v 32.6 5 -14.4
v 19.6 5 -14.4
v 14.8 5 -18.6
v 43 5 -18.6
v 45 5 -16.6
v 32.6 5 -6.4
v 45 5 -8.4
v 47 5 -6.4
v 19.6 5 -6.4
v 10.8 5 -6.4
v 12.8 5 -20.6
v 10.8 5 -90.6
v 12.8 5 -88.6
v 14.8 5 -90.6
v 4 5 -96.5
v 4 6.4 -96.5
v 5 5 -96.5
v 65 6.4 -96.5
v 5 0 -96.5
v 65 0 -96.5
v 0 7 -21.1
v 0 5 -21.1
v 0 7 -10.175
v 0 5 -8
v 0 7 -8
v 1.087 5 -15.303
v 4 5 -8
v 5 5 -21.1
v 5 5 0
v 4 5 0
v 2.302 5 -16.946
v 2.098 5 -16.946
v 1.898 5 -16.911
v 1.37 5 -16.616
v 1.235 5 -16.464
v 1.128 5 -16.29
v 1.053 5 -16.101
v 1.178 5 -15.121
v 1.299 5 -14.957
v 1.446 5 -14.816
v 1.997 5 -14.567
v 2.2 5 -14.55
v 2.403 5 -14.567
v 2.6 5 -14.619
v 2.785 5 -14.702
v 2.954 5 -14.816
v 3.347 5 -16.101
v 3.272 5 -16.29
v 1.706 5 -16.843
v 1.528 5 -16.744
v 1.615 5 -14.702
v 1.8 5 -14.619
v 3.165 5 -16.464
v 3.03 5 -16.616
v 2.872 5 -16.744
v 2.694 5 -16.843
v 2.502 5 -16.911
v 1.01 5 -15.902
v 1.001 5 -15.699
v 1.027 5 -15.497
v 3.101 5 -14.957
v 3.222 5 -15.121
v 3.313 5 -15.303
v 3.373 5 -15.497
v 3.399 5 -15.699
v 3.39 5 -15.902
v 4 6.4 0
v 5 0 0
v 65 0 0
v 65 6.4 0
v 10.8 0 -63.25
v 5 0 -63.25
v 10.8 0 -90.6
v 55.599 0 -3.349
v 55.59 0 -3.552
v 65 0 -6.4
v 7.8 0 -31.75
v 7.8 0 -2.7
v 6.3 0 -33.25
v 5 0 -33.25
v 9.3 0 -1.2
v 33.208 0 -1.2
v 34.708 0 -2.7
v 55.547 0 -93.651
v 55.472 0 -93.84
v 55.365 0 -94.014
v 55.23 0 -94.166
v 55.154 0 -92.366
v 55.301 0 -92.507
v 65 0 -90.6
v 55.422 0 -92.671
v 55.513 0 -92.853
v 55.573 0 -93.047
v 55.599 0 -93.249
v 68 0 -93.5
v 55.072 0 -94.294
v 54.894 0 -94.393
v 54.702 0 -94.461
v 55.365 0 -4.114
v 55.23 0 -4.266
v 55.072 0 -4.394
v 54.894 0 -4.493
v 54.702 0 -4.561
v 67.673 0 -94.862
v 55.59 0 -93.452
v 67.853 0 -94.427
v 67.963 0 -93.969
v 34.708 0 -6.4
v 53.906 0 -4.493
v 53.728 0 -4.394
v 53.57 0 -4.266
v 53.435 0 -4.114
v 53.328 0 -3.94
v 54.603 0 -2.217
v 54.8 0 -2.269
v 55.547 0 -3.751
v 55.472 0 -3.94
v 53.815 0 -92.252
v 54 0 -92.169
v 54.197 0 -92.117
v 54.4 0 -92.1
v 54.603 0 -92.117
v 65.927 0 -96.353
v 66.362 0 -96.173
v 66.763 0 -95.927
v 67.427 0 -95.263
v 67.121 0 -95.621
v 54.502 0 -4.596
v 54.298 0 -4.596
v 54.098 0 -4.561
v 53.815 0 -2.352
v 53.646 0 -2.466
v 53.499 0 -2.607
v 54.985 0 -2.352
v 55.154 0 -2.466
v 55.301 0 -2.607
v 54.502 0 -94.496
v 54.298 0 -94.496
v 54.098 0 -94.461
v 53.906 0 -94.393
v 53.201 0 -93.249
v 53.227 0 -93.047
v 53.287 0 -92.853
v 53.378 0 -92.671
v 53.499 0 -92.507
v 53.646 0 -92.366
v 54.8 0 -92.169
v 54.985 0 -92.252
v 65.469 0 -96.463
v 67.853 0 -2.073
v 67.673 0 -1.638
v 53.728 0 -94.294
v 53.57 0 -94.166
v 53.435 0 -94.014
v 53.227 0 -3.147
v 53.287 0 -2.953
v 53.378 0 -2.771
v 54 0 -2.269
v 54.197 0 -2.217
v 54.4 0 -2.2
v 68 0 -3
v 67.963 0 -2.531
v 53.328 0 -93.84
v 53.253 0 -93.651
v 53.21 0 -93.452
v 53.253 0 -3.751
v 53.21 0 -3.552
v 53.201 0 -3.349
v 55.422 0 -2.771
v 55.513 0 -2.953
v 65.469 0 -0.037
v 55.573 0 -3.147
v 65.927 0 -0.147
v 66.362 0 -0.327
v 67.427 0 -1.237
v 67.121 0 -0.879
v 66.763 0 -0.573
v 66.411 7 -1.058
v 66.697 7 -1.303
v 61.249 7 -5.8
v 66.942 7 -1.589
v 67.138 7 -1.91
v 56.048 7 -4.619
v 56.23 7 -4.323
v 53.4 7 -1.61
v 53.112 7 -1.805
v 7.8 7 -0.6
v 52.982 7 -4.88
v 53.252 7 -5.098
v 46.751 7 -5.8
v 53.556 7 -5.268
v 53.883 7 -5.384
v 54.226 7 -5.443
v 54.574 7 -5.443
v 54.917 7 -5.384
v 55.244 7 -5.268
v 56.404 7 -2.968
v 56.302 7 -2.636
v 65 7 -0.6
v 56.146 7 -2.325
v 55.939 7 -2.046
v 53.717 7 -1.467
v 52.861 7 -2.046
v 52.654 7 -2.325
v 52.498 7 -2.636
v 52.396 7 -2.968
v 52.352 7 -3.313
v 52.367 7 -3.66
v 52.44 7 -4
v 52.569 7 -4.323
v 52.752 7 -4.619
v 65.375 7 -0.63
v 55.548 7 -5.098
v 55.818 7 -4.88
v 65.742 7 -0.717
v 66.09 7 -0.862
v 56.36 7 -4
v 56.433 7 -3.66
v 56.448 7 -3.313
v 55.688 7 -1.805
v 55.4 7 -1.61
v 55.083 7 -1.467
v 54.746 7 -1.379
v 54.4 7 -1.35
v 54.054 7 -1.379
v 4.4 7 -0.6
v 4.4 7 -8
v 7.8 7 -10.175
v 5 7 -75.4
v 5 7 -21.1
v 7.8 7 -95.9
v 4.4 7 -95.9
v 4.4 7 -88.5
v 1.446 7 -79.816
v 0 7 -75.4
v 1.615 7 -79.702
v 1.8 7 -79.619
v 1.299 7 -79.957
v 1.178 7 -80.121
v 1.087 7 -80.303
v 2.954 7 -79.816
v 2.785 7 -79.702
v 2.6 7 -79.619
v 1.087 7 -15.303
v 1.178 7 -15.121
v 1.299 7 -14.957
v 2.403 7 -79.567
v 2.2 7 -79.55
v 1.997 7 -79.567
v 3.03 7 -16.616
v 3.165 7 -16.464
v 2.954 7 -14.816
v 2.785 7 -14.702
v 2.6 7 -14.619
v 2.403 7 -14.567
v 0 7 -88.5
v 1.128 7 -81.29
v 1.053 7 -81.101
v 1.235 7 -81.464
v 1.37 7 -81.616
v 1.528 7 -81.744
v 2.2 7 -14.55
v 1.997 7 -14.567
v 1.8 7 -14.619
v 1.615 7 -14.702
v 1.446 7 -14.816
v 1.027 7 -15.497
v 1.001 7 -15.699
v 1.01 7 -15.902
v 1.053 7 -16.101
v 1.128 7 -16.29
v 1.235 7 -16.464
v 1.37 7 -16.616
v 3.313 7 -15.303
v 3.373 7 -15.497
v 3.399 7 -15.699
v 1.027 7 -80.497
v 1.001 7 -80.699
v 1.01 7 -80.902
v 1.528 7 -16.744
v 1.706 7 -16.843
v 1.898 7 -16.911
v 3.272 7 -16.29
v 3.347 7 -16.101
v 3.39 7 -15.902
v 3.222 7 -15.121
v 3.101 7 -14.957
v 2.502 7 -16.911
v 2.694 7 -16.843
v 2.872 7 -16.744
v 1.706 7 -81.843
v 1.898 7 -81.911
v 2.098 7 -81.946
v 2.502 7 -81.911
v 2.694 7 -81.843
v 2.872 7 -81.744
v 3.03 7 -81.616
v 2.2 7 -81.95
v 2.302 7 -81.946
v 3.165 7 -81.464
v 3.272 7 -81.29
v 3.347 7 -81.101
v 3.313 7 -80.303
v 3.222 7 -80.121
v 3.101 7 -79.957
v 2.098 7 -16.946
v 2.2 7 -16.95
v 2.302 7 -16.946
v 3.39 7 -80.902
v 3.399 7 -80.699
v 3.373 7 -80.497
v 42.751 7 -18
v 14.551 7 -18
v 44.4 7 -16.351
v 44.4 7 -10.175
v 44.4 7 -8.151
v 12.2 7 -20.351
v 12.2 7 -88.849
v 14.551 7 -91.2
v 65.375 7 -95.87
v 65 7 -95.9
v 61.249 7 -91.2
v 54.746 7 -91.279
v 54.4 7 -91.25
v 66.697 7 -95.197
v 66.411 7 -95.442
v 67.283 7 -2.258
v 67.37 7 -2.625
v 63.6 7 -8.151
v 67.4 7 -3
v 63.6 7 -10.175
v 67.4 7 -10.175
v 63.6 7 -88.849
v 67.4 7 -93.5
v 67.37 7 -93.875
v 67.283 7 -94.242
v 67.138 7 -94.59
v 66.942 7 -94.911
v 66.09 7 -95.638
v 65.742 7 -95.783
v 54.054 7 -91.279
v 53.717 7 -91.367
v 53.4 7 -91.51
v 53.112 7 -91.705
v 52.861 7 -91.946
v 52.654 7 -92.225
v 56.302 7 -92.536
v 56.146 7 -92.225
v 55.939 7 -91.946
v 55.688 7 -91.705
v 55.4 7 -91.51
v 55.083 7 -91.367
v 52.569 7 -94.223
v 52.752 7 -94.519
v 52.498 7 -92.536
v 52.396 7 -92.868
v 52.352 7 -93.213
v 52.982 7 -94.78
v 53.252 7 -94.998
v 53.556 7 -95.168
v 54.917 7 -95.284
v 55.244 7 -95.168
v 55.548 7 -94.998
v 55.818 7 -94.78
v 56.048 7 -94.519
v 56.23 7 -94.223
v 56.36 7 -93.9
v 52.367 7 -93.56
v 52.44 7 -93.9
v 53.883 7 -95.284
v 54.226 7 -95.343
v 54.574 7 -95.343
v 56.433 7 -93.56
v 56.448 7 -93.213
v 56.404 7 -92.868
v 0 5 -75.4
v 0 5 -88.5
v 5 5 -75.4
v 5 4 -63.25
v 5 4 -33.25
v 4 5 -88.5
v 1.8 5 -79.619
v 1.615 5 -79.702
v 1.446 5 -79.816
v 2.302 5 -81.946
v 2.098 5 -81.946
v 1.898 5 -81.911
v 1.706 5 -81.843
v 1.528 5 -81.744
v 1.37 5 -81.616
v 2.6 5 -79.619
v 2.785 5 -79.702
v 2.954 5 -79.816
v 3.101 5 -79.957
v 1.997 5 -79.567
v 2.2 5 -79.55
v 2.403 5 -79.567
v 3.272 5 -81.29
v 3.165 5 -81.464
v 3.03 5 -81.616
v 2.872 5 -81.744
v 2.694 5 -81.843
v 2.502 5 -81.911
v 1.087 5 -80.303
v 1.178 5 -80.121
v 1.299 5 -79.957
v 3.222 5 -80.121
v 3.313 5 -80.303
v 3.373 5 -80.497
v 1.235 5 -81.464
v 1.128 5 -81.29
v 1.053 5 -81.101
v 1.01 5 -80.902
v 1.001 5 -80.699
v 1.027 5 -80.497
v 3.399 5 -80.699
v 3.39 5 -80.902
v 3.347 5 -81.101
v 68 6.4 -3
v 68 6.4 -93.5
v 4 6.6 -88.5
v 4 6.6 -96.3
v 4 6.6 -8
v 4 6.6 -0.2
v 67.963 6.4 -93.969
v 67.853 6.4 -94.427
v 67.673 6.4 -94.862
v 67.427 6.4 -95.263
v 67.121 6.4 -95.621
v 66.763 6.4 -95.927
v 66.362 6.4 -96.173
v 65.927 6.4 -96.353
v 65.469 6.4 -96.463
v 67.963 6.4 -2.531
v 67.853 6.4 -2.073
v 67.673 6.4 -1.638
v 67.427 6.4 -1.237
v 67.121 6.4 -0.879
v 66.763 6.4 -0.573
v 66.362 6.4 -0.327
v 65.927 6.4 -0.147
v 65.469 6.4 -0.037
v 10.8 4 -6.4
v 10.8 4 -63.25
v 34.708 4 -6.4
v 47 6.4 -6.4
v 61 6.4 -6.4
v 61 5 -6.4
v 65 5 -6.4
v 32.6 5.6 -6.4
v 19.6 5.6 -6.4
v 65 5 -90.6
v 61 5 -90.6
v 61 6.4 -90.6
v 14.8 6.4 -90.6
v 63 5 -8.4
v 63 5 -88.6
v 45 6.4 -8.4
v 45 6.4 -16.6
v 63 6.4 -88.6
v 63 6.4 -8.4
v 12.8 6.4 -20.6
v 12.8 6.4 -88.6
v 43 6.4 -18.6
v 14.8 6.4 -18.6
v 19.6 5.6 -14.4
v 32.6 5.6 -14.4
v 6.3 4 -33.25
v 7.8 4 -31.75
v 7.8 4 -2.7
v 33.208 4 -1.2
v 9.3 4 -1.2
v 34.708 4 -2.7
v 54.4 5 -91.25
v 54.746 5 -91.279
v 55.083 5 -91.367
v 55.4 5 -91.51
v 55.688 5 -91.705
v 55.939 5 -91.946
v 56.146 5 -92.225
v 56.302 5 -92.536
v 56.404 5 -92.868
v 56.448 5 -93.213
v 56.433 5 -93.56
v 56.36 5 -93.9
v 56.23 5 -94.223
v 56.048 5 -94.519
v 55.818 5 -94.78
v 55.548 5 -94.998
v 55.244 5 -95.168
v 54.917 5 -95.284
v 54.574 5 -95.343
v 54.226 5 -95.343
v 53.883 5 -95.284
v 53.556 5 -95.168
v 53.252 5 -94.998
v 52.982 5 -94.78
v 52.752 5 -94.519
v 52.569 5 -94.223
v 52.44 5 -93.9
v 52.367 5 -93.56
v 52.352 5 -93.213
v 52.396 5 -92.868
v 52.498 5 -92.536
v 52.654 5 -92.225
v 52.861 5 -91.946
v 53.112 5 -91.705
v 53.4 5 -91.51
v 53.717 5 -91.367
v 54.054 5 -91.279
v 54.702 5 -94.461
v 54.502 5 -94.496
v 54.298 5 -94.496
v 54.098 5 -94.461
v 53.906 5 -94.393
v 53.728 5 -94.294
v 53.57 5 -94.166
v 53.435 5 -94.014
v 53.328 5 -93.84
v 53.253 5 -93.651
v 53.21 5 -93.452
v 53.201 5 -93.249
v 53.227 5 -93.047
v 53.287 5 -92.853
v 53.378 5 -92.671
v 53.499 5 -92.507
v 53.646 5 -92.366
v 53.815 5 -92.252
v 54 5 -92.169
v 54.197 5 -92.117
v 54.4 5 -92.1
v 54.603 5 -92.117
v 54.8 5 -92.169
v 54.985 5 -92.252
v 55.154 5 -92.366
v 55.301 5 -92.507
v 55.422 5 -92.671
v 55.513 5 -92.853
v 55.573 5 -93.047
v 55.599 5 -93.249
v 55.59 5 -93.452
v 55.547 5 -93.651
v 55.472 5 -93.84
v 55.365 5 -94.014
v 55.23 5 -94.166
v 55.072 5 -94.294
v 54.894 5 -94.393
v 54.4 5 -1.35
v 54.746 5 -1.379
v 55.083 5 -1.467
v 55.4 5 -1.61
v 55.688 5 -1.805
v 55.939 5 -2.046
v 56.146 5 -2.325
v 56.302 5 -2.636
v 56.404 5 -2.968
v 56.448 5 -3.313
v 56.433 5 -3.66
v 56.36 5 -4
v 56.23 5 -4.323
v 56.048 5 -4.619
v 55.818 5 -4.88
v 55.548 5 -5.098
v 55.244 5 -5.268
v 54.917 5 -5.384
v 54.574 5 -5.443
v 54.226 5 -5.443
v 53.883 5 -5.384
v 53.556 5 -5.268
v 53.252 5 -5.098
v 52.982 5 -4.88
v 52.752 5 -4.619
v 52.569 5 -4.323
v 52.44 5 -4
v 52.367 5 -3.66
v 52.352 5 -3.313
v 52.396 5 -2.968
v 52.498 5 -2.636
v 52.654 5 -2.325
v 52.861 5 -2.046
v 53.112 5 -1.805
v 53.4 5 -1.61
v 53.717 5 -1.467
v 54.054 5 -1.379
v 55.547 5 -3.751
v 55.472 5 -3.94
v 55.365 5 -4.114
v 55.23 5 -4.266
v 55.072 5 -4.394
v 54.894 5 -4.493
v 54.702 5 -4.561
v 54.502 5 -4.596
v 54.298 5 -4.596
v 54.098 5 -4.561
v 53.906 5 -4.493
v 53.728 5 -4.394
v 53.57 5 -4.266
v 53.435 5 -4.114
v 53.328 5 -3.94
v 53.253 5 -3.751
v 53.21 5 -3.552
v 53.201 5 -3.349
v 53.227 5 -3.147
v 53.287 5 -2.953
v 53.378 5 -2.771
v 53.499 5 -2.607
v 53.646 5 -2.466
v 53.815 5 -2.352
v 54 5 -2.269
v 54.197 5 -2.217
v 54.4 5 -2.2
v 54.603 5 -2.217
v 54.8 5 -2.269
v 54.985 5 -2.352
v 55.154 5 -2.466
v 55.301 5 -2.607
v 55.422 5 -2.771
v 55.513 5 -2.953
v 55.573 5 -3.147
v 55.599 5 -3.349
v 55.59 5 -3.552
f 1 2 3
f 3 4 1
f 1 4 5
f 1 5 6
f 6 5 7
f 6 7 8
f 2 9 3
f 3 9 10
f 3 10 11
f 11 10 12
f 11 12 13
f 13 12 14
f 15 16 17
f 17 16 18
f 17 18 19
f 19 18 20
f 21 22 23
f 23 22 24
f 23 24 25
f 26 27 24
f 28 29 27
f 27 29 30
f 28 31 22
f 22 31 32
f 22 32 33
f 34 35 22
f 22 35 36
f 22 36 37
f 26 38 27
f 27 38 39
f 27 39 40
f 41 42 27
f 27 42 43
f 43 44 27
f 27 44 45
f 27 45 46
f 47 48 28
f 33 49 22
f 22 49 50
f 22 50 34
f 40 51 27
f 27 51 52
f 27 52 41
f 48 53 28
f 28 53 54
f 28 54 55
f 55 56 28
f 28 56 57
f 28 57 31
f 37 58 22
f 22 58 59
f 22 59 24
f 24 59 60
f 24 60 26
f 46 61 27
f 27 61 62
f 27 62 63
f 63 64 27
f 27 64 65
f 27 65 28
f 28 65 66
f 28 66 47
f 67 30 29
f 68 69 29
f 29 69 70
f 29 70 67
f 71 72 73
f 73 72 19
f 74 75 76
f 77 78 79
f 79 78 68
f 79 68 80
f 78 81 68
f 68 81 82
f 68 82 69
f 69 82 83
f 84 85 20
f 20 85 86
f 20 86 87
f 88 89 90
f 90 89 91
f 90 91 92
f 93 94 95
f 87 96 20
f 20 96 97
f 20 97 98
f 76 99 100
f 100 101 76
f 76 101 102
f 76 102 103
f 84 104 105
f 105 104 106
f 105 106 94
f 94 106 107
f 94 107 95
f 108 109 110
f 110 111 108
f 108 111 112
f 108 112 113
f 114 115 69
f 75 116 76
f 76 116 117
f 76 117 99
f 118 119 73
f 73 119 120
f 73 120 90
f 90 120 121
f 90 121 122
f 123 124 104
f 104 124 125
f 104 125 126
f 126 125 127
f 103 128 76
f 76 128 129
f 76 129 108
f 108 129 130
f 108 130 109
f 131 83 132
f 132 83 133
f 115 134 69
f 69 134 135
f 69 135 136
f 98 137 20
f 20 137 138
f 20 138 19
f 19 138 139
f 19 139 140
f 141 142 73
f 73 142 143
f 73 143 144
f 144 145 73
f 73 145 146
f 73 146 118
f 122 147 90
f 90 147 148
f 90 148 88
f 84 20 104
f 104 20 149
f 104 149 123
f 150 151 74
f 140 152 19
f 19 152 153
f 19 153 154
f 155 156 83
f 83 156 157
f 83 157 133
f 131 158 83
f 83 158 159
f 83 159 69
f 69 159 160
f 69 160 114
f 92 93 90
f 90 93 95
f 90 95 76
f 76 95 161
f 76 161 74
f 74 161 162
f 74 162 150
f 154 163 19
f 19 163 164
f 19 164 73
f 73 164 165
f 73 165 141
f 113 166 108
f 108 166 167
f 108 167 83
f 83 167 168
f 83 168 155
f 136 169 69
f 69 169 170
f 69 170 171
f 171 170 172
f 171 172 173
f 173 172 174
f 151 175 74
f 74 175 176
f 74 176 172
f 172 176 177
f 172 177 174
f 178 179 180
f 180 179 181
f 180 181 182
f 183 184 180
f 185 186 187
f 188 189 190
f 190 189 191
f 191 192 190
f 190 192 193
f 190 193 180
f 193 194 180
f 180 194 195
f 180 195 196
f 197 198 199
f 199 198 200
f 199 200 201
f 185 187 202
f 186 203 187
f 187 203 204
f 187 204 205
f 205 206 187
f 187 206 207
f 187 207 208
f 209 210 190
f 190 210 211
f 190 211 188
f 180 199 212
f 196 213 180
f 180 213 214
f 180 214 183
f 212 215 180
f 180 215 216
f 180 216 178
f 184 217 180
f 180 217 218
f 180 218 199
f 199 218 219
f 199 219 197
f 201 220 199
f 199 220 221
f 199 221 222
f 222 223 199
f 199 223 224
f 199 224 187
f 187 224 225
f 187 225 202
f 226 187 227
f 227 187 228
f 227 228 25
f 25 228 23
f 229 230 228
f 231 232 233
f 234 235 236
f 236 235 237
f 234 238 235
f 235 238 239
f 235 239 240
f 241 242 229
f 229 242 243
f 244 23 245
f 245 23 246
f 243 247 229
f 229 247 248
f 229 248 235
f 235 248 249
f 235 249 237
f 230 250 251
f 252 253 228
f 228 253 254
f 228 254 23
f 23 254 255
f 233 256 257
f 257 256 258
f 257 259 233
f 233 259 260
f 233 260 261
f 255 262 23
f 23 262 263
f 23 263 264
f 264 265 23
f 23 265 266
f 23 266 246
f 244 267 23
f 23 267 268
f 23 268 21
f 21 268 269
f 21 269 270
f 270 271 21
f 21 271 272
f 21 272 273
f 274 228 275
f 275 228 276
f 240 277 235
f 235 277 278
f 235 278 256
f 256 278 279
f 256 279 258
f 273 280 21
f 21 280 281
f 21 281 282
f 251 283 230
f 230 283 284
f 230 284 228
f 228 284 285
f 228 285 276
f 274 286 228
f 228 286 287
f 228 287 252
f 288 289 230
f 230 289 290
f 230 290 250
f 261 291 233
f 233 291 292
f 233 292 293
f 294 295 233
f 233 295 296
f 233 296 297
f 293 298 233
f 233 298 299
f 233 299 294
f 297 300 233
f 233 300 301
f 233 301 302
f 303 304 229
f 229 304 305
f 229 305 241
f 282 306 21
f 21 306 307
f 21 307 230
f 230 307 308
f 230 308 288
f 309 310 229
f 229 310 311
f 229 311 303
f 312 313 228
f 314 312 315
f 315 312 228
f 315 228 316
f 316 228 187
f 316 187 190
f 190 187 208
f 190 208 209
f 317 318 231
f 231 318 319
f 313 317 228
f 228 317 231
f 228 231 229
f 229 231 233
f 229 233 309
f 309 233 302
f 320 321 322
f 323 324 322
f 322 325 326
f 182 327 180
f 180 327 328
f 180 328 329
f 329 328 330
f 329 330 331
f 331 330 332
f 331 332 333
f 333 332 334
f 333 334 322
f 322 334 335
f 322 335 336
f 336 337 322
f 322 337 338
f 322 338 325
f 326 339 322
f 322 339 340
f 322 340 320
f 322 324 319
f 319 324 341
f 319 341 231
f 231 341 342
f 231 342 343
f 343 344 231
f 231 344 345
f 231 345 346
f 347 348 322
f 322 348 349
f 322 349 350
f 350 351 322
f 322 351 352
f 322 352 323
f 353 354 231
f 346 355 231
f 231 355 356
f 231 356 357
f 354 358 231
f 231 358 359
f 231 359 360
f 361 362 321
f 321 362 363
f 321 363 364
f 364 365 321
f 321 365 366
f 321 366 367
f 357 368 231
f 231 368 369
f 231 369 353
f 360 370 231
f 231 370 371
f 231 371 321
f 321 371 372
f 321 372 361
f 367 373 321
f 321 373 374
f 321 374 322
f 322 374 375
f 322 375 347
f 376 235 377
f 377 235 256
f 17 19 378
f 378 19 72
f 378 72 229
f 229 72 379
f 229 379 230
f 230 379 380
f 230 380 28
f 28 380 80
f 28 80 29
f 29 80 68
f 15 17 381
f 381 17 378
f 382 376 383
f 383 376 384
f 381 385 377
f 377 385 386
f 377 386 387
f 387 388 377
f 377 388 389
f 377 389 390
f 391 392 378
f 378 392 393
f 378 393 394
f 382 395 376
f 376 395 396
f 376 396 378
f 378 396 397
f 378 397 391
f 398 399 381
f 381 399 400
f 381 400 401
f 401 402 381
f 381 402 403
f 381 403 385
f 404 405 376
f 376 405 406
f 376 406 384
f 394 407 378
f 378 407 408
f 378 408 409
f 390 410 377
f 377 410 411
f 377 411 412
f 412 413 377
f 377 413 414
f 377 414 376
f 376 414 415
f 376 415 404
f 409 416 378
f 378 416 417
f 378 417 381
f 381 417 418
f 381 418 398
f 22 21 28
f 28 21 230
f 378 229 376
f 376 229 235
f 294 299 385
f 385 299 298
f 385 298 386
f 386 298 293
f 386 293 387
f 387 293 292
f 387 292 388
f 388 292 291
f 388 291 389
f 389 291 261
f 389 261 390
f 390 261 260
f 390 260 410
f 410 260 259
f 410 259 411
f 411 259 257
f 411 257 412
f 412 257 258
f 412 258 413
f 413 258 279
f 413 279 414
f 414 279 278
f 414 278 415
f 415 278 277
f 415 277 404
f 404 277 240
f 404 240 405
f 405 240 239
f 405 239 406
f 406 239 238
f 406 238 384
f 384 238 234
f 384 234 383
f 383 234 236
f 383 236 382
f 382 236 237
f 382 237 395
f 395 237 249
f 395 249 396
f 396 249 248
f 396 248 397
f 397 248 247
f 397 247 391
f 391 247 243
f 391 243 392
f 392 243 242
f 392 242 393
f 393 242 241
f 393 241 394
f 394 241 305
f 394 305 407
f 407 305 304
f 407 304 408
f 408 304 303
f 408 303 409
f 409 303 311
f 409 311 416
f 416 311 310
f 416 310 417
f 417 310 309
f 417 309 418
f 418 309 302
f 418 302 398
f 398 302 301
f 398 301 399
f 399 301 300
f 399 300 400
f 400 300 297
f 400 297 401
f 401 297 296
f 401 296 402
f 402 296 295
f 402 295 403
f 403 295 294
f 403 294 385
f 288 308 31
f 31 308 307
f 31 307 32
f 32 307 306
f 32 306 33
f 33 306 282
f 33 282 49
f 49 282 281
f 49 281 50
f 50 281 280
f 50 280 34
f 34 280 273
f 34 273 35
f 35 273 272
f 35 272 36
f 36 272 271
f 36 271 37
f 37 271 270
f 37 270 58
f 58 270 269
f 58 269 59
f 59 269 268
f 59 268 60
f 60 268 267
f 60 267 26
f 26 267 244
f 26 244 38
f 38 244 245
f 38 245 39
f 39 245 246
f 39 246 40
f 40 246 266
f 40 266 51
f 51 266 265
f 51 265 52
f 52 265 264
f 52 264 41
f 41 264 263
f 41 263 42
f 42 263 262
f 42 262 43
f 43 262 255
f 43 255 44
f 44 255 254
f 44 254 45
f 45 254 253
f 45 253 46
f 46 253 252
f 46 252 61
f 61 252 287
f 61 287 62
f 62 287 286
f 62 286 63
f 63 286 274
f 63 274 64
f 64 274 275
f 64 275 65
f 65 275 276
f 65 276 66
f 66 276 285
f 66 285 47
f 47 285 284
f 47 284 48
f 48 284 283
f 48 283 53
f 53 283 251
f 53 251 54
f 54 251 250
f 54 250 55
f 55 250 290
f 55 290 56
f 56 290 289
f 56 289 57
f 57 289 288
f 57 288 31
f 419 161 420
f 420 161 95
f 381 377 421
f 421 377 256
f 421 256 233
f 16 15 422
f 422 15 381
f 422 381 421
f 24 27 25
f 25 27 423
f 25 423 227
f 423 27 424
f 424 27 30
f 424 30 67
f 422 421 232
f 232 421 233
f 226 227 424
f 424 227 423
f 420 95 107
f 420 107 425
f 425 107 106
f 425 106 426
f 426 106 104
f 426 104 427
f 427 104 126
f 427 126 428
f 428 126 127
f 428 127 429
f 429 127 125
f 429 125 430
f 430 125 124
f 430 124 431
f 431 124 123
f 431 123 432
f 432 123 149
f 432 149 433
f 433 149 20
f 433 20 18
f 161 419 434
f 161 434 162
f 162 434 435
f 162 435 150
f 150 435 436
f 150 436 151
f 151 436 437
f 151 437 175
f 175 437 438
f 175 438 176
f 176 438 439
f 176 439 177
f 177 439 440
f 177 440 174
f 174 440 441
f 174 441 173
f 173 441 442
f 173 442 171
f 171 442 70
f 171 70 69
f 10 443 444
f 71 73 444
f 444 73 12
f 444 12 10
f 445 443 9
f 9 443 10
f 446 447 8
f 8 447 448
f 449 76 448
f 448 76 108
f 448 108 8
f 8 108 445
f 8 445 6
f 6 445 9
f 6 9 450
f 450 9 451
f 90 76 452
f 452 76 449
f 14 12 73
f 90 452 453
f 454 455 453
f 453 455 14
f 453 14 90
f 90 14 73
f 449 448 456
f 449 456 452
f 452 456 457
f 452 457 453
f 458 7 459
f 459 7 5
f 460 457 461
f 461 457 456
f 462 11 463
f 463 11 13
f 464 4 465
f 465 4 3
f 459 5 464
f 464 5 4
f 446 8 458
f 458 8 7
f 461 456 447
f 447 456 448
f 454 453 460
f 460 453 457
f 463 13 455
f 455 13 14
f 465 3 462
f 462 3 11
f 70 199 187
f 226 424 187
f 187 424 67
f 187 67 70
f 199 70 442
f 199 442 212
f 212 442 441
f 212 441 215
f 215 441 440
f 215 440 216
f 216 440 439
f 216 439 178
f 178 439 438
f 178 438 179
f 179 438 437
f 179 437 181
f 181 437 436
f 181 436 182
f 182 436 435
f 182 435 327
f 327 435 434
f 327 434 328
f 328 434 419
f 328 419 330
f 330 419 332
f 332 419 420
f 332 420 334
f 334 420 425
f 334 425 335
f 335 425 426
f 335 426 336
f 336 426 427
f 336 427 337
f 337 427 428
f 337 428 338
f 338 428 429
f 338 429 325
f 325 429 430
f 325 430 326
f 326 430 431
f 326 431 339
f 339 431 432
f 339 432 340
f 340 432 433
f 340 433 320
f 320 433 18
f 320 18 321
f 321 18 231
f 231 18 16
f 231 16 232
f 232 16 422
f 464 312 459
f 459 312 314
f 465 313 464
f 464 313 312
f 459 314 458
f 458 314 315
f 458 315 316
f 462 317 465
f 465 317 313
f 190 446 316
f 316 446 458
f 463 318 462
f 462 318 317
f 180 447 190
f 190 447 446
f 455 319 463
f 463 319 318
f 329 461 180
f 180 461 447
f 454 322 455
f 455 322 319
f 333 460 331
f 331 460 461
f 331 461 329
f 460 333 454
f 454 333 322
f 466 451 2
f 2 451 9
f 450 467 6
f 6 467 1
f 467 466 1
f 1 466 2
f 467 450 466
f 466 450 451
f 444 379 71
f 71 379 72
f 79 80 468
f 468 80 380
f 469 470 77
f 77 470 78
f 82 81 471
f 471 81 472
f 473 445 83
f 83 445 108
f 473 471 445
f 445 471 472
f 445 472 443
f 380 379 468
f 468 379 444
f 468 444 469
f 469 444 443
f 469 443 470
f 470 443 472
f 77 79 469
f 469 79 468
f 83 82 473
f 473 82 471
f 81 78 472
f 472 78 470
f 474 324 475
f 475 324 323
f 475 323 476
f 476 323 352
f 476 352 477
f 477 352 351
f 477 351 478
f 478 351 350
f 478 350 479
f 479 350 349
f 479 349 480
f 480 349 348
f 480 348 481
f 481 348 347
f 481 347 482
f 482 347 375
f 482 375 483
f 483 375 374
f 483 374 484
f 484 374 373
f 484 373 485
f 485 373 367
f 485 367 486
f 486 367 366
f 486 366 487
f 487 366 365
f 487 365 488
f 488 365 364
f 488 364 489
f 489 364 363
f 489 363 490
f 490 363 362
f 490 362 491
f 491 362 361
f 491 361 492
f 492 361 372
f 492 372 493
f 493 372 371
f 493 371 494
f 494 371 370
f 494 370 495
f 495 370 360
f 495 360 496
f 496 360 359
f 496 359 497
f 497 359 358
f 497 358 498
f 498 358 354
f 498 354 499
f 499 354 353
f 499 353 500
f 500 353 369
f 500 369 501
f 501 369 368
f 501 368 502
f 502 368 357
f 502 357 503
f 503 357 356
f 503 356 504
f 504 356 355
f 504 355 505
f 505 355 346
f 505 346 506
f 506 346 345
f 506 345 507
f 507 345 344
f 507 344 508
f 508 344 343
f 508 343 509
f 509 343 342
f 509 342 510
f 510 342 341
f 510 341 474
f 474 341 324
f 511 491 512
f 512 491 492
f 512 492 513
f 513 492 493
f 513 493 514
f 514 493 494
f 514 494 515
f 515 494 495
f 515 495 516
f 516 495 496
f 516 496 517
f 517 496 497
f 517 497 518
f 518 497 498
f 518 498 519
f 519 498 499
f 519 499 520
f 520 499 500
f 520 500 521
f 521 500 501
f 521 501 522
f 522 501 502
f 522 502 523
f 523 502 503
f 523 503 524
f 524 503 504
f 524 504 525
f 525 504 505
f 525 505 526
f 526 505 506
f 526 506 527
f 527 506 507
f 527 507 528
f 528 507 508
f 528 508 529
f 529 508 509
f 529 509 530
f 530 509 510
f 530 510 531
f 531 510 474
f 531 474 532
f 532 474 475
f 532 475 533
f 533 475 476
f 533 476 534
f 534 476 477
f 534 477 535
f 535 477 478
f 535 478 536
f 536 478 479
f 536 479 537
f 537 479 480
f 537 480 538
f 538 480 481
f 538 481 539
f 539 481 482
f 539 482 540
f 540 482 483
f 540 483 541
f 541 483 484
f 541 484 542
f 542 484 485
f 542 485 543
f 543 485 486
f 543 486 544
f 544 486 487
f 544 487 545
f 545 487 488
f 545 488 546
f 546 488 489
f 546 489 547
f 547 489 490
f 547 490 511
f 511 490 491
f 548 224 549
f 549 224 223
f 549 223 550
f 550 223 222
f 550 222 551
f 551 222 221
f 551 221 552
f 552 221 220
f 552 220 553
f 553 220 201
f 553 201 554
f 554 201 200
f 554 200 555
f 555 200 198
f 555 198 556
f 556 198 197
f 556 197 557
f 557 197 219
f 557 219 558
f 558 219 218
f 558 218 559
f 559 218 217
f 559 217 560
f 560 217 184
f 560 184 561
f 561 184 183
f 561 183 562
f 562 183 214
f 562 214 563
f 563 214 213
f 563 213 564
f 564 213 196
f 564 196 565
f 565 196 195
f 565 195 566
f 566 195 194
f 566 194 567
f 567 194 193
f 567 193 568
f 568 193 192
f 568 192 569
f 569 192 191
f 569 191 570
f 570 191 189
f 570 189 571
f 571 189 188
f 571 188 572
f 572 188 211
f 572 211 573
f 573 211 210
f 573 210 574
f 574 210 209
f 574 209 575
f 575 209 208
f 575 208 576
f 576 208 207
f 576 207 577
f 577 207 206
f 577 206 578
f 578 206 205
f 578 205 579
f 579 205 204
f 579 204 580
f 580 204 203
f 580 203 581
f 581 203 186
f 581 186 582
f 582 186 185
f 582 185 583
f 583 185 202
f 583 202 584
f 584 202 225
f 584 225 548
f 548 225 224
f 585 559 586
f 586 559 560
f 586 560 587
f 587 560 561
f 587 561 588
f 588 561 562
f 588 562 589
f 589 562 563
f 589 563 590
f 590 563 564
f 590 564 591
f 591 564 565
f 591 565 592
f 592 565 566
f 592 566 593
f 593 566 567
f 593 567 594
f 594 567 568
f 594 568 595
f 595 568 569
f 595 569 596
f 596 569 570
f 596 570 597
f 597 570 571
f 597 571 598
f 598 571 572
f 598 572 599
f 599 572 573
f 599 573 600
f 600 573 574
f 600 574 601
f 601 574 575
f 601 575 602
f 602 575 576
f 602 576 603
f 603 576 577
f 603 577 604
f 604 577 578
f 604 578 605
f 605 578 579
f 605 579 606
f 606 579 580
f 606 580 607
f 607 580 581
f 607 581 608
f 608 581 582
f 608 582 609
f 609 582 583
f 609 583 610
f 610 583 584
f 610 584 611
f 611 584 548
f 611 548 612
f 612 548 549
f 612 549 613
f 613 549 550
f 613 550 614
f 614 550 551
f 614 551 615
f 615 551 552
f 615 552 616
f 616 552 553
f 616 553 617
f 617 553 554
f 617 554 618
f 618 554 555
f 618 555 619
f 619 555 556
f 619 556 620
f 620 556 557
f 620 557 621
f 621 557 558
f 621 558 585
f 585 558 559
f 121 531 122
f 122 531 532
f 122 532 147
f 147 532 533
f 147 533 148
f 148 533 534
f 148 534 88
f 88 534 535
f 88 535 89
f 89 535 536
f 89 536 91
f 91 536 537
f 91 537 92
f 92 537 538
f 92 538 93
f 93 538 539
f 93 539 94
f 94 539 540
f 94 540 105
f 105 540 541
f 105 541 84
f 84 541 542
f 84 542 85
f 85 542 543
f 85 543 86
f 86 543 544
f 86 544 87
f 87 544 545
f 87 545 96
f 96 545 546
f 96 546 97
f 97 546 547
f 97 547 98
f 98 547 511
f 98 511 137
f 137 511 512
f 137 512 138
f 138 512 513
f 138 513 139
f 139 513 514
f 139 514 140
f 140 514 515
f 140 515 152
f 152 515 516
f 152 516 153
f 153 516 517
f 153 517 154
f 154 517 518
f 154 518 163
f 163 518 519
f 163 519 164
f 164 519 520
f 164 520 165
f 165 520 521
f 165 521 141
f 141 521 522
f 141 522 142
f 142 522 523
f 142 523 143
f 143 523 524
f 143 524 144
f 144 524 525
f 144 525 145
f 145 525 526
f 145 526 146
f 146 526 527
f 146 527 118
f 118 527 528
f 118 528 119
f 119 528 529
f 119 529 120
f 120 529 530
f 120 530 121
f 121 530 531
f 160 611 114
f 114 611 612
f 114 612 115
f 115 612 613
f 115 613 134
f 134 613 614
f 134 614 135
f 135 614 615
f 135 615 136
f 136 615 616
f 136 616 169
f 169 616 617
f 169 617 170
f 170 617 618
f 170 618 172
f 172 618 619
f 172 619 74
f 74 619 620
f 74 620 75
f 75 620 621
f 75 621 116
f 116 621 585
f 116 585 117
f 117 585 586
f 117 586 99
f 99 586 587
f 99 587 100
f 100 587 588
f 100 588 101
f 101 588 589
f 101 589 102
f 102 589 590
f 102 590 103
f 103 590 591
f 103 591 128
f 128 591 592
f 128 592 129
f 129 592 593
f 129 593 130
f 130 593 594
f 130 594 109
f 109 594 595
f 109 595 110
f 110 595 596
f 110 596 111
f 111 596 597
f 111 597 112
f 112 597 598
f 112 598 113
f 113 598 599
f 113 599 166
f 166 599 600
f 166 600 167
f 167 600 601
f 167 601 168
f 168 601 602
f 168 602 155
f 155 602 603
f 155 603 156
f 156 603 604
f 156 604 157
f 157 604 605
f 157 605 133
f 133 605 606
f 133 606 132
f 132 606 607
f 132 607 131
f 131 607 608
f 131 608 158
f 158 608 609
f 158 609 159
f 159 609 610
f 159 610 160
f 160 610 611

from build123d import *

# Parameters (mm, degrees)
SKETCH_2_W           = 96.5
SKETCH_2_H           = 7
EXTRUDE_1_DEPTH      = 11
SKETCH_6_W           = 5
SKETCH_6_H           = 2.5
CUT_EXTRUDE_3_DEPTH  = 98.376845297
SKETCH_7_W           = 54.3
SKETCH_7_H           = 10
CUT_EXTRUDE_4_DEPTH  = 5
SKETCH_8_R           = 1.2
CUT_EXTRUDE_6_DEPTH  = 98.376845297
SKETCH_10_W          = 96.5
SKETCH_10_H          = 7
EXTRUDE_2_DEPTH      = 57
SKETCH_11_W          = 8
SKETCH_11_H          = 2
CUT_EXTRUDE_7_DEPTH  = 4
CHAMFER_1_SIZE       = 0.4
FILLET_1_R           = 3
SKETCH_12_W          = 54.2
SKETCH_12_H          = 84.200000954
CUT_EXTRUDE_8_DEPTH  = 5
CUT_EXTRUDE_9_DEPTH  = 119.15773356
CHAMFER_2_SIZE       = 2
CHAMFER_3_SIZE       = 0.6
SKETCH_17_W          = 13
SKETCH_17_H          = 8
CUT_EXTRUDE_10_DEPTH = 0.6
CUT_EXTRUDE_11_DEPTH = 4
CHAMFER_4_SIZE       = 1.5
SKETCH_19_R          = 2.05
CUT_EXTRUDE_12_DEPTH = 2
SKETCH_20_R          = 1.2
CUT_EXTRUDE_13_DEPTH = 119.15773356


with BuildPart() as part:
    # 草图2 → 凸台-拉伸1 (new body)
    with BuildSketch(Plane(origin=(0, 0, 0), x_dir=(0, 0, -1), z_dir=(1, 0, 0))):
        with Locations((48.25, 3.5)):
            Rectangle(SKETCH_2_W, SKETCH_2_H)
    extrude(amount=EXTRUDE_1_DEPTH)

    # 草图6 → 切除-拉伸3 (cut, through all)
    with BuildSketch(Plane(origin=(0, 0, -96.5), x_dir=(-1, 0, 0), z_dir=(0, 0, -1))):
        with Locations((-2.5, 3.75)):
            Rectangle(SKETCH_6_W, SKETCH_6_H)
        with Locations((-2.5, 1.25)):
            Rectangle(SKETCH_6_W, SKETCH_6_H)
    extrude(amount=-CUT_EXTRUDE_3_DEPTH, mode=Mode.SUBTRACT)

    # 草图7 → 切除-拉伸4 (cut)
    with BuildSketch(Plane.ZY):
        with Locations((-48.25, 9)):
            Rectangle(SKETCH_7_W, SKETCH_7_H)
    extrude(amount=-CUT_EXTRUDE_4_DEPTH, mode=Mode.SUBTRACT)

    # 草图8 → 切除-拉伸6 (cut, through all)
    with BuildSketch(Plane(origin=(0, 7, 0), x_dir=(1, 0, 0), z_dir=(0, 1, 0))):
        with Locations(Location((2.2, 15.75, 0), (0, 0, 270))):
            Circle(SKETCH_8_R)
        with Locations(Location((2.2, 80.75, 0), (0, 0, 270))):
            Circle(SKETCH_8_R)
    extrude(amount=-CUT_EXTRUDE_6_DEPTH, mode=Mode.SUBTRACT)

    # 草图10 → 凸台-拉伸2 (add)
    with BuildSketch(Plane(origin=(11, 0, 0), x_dir=(0, 0, -1), z_dir=(1, 0, 0))):
        with Locations((48.25, 3.5)):
            Rectangle(SKETCH_10_W, SKETCH_10_H)
    extrude(amount=EXTRUDE_2_DEPTH)

    # 草图11 → 切除-拉伸7 (cut)
    with BuildSketch(Plane.ZY):
        with Locations((-92.5, 6)):
            Rectangle(SKETCH_11_W, SKETCH_11_H)
        with Locations((-4, 6)):
            Rectangle(SKETCH_11_W, SKETCH_11_H)
    extrude(amount=-CUT_EXTRUDE_7_DEPTH, mode=Mode.SUBTRACT)

    # 倒角1
    chamfer_1_edges = [part.edges().sort_by_distance(p)[0] for p in [
        (4, 7, -92.5),
        (4, 7, -4),
    ]]
    chamfer(chamfer_1_edges, length=CHAMFER_1_SIZE)

    # 圆角1
    fillet_1_edges = [part.edges().sort_by_distance(p)[0] for p in [
        (68, 3.5, 0),
        (68, 3.5, -96.5),
    ]]
    fillet(fillet_1_edges, radius=FILLET_1_R)

    # 草图12 → 切除-拉伸8 (cut)
    with BuildSketch(Plane.XZ):
        with Locations((37.9, -48.499999523)):
            Rectangle(SKETCH_12_W, SKETCH_12_H)
    extrude(amount=-CUT_EXTRUDE_8_DEPTH, mode=Mode.SUBTRACT)

    # 草图16 → 切除-拉伸9 (cut, through all)
    with BuildSketch(Plane.XZ.offset(-5)):
        Polygon((45, -6.399999046), (63, -6.399999046), (63, -90.6), (12.8, -90.6), (12.8, -18.599999046), (45, -18.599999046), align=None)
    extrude(amount=-CUT_EXTRUDE_9_DEPTH, mode=Mode.SUBTRACT)

    # 倒角2
    chamfer_2_edges = [part.edges().sort_by_distance(p)[0] for p in [
        (45, 6, -18.599999046),
        (45, 6, -6.399999046),
        (63, 6, -6.399999046),
        (63, 6, -90.6),
        (12.8, 6, -90.6),
        (12.8, 6, -18.599999046),
    ]]
    chamfer(chamfer_2_edges, length=CHAMFER_2_SIZE)

    # 倒角3
    chamfer_3_edges = [part.edges().sort_by_distance(p)[0] for p in [
        (34.7, 7, -96.5),
        (67.121320344, 7, -95.621320344),
        (68, 7, -48.25),
        (67.121320344, 7, -0.878679656),
        (34.7, 7, 0),
        (62, 7, -89.6),
        (63, 7, -48.499999523),
        (62, 7, -7.399999046),
        (54, 7, -6.399999046),
        (46, 7, -7.399999046),
        (45, 7, -12.499999046),
        (44, 7, -17.599999046),
        (37.9, 7, -90.6),
        (13.8, 7, -89.6),
        (12.8, 7, -54.599999523),
        (13.8, 7, -19.599999046),
        (28.9, 7, -18.599999046),
    ]]
    chamfer(chamfer_3_edges, length=CHAMFER_3_SIZE)

    # 草图17 → 切除-拉伸10 (cut)
    with BuildSketch(Plane.XZ.offset(-5)):
        with Locations((26.1, -10.399999046)):
            Rectangle(SKETCH_17_W, SKETCH_17_H)
    extrude(amount=-CUT_EXTRUDE_10_DEPTH, mode=Mode.SUBTRACT)

    # 草图18 → 切除-拉伸11 (cut)
    with BuildSketch(Plane.XZ):
        Polygon((34.708261144, -6.399999046), (10.8, -6.399999046), (10.8, -63.25), (5, -63.25), (5, -33.25), (7.8, -33.25), (7.8, -1.2), (34.708261144, -1.2), align=None)
    extrude(amount=-CUT_EXTRUDE_11_DEPTH, mode=Mode.SUBTRACT)

    # 倒角4
    chamfer_4_edges = [part.edges().sort_by_distance(p)[0] for p in [
        (7.8, 2, -33.25),
        (7.8, 2, -1.2),
        (34.708261144, 2, -1.2),
    ]]
    chamfer(chamfer_4_edges, length=CHAMFER_4_SIZE)

    # 草图19 → 切除-拉伸12 (cut)
    with BuildSketch(Plane(origin=(0, 7, 0), x_dir=(1, 0, 0), z_dir=(0, 1, 0))):
        with Locations(Location((54.4, 3.4, 0), (0, 0, 270))):
            Circle(SKETCH_19_R)
        with Locations(Location((54.4, 93.3, 0), (0, 0, 270))):
            Circle(SKETCH_19_R)
    extrude(amount=-CUT_EXTRUDE_12_DEPTH, mode=Mode.SUBTRACT)

    # 草图20 → 切除-拉伸13 (cut, through all)
    with BuildSketch(Plane(origin=(0, 5, 0), x_dir=(1, 0, 0), z_dir=(0, 1, 0))):
        with Locations(Location((54.4, 3.4, 0), (0, 0, 270))):
            Circle(SKETCH_20_R)
        with Locations(Location((54.4, 93.3, 0), (0, 0, 270))):
            Circle(SKETCH_20_R)
    extrude(amount=-CUT_EXTRUDE_13_DEPTH, mode=Mode.SUBTRACT)


solid = part.part
